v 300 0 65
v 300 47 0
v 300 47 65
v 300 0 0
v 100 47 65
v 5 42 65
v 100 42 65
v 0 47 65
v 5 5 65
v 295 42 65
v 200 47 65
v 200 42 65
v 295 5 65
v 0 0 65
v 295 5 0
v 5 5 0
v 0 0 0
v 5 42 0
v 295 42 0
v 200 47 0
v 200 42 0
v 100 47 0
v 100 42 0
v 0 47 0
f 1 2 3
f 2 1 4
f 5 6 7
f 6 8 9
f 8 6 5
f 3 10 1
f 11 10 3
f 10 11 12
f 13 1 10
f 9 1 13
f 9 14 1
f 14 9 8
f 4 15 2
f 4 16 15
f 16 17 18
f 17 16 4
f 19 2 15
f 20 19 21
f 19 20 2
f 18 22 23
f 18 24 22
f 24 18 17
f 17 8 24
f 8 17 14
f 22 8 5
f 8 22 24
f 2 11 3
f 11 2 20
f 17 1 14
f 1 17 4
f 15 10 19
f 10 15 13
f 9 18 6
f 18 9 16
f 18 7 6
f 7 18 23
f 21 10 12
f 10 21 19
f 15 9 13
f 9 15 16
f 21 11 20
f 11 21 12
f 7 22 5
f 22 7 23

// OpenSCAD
x=300;
y=47;
z=65;

difference() {
    cube([x, y, z]);
    color("red")
        translate([5, 5, -5])
        cube([x-10, y-10, z+10]);
    color("red")
        translate([100, 5, -5])
        cube([100, y, z+10]);
}
